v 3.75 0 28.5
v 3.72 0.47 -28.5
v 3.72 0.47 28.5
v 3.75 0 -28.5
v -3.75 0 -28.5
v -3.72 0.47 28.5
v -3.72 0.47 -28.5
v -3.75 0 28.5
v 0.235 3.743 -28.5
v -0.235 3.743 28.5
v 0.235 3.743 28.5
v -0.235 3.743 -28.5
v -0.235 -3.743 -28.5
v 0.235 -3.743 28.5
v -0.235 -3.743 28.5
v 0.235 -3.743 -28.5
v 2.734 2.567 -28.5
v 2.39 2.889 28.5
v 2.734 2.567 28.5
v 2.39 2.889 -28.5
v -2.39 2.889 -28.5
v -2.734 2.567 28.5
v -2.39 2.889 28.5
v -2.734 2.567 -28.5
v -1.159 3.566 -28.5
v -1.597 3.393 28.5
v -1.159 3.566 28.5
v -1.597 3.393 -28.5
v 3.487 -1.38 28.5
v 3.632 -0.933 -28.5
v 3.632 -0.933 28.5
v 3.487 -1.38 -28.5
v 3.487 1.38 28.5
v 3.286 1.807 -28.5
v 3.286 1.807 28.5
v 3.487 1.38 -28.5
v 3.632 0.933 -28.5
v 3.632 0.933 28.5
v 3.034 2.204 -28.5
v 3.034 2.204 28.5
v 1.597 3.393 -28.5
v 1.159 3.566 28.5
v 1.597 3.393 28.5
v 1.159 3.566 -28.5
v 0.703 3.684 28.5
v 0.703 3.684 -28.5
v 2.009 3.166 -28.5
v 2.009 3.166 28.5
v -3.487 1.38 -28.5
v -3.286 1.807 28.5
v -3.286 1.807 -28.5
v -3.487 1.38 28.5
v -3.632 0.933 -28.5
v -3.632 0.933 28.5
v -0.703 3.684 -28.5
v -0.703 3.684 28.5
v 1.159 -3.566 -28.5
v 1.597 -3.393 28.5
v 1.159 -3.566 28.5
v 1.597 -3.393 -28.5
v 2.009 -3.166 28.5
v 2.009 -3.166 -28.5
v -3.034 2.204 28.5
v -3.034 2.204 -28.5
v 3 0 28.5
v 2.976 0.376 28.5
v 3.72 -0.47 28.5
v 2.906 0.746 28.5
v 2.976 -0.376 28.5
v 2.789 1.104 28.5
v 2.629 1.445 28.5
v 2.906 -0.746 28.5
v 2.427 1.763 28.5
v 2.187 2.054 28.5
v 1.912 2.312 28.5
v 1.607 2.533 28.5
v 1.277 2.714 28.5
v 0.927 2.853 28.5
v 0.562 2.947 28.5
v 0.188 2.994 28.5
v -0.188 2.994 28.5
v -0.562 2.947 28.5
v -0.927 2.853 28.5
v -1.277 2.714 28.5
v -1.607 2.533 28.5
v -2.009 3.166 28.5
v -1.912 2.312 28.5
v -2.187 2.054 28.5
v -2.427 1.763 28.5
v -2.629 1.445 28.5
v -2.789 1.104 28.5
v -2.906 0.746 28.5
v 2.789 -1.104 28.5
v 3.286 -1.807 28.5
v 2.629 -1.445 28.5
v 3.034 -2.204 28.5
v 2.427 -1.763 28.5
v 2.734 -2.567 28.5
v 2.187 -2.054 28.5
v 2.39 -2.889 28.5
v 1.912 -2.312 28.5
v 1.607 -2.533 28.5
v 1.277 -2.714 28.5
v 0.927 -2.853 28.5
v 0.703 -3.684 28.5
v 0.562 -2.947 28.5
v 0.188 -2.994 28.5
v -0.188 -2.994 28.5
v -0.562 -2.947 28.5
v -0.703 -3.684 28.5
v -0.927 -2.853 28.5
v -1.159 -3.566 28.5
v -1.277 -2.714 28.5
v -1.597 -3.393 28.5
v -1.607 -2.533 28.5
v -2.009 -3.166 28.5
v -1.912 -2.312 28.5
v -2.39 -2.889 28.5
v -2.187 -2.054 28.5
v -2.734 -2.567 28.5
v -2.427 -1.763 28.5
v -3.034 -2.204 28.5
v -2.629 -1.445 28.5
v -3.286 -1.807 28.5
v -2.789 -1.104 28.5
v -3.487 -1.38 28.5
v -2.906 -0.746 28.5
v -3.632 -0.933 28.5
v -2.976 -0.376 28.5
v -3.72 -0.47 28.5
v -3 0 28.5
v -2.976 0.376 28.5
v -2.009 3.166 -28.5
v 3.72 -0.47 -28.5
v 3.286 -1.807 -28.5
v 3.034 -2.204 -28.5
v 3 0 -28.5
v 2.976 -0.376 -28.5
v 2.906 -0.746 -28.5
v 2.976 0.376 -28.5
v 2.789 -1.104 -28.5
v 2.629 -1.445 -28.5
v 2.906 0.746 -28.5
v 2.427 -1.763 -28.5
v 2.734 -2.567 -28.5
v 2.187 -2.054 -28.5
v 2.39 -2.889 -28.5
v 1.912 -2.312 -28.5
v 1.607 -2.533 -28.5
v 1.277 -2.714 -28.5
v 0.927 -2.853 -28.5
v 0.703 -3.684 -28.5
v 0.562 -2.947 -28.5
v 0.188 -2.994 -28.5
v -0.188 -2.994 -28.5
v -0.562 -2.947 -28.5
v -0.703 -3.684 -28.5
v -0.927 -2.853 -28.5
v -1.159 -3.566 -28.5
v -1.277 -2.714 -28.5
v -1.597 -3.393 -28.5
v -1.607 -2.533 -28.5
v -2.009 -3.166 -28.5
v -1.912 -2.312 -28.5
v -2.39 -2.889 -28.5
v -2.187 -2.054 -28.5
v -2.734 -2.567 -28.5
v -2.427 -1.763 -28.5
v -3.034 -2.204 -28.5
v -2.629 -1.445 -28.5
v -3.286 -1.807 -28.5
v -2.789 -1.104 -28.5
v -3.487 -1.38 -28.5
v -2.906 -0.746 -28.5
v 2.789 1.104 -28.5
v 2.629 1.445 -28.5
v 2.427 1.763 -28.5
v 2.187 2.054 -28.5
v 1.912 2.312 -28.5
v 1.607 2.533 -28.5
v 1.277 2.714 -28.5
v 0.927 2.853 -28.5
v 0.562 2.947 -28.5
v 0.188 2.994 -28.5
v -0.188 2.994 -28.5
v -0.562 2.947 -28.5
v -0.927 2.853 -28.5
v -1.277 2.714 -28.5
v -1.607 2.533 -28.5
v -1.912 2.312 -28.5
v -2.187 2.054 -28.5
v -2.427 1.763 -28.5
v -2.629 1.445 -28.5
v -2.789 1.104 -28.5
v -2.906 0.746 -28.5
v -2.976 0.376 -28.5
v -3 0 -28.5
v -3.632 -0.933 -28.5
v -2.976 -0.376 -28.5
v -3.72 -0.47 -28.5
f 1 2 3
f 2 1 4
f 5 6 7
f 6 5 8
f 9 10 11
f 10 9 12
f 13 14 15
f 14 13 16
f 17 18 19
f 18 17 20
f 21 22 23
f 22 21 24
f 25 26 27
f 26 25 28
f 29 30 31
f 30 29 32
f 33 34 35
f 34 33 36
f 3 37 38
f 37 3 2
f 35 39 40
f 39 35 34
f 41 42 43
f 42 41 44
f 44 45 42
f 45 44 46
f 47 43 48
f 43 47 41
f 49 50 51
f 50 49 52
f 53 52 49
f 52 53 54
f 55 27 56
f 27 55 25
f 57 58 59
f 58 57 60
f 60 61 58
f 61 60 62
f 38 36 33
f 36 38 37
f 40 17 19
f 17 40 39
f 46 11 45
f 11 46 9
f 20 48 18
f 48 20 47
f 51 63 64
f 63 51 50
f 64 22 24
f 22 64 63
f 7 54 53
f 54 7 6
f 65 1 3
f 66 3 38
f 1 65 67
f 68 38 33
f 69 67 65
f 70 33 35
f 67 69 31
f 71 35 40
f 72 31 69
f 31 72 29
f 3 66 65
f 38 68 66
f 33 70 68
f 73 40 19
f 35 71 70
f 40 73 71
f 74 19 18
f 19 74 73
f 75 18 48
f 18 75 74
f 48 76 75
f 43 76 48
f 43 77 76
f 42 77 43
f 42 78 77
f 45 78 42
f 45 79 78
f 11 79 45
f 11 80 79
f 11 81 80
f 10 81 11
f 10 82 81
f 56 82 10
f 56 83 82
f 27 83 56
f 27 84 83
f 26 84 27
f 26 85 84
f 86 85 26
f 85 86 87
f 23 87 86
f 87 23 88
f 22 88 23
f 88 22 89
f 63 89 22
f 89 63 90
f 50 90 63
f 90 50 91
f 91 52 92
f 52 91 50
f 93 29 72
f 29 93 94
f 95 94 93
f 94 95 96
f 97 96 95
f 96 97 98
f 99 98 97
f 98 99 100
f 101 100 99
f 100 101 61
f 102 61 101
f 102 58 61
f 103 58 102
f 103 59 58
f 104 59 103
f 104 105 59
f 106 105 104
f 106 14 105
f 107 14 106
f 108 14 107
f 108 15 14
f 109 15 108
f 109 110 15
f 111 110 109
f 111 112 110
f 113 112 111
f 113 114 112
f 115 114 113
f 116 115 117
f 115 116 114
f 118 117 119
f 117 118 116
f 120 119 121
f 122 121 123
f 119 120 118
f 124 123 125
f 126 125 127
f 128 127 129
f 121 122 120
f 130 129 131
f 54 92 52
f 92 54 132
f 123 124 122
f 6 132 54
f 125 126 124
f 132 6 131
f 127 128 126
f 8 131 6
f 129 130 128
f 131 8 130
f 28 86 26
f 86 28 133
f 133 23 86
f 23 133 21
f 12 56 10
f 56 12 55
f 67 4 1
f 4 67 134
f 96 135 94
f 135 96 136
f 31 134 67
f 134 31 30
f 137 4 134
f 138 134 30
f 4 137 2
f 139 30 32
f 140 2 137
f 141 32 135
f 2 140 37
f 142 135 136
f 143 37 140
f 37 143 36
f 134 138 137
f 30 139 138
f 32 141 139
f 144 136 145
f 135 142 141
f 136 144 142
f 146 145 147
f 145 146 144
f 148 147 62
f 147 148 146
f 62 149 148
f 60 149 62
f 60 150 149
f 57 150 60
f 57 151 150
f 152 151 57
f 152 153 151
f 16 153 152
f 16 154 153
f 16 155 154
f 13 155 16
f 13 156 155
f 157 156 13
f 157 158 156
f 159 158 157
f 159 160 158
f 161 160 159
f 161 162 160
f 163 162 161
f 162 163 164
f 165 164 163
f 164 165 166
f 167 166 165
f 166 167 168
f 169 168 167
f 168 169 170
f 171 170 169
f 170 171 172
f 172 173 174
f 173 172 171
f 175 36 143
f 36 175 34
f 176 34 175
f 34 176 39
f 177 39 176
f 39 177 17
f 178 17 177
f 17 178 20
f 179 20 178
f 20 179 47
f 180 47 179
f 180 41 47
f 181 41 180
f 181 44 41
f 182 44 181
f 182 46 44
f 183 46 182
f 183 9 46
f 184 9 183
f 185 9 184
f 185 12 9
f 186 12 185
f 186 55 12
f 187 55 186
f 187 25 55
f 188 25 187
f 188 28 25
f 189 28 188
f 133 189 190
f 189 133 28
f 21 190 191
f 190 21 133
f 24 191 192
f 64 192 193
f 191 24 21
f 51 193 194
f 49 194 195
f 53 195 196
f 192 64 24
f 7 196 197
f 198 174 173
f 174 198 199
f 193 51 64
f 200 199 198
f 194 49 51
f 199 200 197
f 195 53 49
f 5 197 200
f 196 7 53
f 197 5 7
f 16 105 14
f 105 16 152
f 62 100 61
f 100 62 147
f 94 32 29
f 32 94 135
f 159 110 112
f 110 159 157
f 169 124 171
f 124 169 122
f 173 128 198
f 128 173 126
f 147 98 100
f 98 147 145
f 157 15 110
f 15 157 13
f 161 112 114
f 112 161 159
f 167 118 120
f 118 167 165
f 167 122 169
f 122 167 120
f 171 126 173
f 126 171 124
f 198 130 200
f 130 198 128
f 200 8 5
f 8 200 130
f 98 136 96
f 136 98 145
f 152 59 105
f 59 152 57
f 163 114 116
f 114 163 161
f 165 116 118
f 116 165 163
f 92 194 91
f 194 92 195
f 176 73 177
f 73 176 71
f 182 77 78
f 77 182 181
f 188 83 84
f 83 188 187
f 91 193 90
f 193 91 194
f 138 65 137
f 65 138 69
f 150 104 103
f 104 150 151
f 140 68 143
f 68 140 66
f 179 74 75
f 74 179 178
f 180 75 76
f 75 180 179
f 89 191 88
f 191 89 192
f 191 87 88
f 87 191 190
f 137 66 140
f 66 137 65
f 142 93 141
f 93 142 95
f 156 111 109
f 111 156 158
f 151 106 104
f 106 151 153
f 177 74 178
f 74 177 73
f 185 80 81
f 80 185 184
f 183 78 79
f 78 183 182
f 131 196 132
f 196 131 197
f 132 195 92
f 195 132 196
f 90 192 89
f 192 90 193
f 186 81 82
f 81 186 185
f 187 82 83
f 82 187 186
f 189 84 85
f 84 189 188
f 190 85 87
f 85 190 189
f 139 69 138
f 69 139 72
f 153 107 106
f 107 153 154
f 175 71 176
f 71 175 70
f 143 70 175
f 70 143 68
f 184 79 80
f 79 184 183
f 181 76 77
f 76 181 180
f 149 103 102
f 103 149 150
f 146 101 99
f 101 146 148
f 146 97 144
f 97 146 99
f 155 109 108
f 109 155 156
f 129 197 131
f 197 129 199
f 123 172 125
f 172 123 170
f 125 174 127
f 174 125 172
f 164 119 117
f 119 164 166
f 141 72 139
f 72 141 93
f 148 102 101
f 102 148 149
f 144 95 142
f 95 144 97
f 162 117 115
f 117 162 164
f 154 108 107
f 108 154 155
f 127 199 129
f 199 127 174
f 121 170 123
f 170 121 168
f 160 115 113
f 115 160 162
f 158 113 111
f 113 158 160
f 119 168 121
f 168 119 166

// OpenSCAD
$fn = 50;


difference() {
	union() {
		translate(v = [0, 0, -28.5000000000]) {
			cylinder(h = 57, r = 3.7500000000);
		}
	}
	union() {
		translate(v = [0, 0, -100.0000000000]) {
			cylinder(h = 200, r = 3.0000000000);
		}
	}
}
